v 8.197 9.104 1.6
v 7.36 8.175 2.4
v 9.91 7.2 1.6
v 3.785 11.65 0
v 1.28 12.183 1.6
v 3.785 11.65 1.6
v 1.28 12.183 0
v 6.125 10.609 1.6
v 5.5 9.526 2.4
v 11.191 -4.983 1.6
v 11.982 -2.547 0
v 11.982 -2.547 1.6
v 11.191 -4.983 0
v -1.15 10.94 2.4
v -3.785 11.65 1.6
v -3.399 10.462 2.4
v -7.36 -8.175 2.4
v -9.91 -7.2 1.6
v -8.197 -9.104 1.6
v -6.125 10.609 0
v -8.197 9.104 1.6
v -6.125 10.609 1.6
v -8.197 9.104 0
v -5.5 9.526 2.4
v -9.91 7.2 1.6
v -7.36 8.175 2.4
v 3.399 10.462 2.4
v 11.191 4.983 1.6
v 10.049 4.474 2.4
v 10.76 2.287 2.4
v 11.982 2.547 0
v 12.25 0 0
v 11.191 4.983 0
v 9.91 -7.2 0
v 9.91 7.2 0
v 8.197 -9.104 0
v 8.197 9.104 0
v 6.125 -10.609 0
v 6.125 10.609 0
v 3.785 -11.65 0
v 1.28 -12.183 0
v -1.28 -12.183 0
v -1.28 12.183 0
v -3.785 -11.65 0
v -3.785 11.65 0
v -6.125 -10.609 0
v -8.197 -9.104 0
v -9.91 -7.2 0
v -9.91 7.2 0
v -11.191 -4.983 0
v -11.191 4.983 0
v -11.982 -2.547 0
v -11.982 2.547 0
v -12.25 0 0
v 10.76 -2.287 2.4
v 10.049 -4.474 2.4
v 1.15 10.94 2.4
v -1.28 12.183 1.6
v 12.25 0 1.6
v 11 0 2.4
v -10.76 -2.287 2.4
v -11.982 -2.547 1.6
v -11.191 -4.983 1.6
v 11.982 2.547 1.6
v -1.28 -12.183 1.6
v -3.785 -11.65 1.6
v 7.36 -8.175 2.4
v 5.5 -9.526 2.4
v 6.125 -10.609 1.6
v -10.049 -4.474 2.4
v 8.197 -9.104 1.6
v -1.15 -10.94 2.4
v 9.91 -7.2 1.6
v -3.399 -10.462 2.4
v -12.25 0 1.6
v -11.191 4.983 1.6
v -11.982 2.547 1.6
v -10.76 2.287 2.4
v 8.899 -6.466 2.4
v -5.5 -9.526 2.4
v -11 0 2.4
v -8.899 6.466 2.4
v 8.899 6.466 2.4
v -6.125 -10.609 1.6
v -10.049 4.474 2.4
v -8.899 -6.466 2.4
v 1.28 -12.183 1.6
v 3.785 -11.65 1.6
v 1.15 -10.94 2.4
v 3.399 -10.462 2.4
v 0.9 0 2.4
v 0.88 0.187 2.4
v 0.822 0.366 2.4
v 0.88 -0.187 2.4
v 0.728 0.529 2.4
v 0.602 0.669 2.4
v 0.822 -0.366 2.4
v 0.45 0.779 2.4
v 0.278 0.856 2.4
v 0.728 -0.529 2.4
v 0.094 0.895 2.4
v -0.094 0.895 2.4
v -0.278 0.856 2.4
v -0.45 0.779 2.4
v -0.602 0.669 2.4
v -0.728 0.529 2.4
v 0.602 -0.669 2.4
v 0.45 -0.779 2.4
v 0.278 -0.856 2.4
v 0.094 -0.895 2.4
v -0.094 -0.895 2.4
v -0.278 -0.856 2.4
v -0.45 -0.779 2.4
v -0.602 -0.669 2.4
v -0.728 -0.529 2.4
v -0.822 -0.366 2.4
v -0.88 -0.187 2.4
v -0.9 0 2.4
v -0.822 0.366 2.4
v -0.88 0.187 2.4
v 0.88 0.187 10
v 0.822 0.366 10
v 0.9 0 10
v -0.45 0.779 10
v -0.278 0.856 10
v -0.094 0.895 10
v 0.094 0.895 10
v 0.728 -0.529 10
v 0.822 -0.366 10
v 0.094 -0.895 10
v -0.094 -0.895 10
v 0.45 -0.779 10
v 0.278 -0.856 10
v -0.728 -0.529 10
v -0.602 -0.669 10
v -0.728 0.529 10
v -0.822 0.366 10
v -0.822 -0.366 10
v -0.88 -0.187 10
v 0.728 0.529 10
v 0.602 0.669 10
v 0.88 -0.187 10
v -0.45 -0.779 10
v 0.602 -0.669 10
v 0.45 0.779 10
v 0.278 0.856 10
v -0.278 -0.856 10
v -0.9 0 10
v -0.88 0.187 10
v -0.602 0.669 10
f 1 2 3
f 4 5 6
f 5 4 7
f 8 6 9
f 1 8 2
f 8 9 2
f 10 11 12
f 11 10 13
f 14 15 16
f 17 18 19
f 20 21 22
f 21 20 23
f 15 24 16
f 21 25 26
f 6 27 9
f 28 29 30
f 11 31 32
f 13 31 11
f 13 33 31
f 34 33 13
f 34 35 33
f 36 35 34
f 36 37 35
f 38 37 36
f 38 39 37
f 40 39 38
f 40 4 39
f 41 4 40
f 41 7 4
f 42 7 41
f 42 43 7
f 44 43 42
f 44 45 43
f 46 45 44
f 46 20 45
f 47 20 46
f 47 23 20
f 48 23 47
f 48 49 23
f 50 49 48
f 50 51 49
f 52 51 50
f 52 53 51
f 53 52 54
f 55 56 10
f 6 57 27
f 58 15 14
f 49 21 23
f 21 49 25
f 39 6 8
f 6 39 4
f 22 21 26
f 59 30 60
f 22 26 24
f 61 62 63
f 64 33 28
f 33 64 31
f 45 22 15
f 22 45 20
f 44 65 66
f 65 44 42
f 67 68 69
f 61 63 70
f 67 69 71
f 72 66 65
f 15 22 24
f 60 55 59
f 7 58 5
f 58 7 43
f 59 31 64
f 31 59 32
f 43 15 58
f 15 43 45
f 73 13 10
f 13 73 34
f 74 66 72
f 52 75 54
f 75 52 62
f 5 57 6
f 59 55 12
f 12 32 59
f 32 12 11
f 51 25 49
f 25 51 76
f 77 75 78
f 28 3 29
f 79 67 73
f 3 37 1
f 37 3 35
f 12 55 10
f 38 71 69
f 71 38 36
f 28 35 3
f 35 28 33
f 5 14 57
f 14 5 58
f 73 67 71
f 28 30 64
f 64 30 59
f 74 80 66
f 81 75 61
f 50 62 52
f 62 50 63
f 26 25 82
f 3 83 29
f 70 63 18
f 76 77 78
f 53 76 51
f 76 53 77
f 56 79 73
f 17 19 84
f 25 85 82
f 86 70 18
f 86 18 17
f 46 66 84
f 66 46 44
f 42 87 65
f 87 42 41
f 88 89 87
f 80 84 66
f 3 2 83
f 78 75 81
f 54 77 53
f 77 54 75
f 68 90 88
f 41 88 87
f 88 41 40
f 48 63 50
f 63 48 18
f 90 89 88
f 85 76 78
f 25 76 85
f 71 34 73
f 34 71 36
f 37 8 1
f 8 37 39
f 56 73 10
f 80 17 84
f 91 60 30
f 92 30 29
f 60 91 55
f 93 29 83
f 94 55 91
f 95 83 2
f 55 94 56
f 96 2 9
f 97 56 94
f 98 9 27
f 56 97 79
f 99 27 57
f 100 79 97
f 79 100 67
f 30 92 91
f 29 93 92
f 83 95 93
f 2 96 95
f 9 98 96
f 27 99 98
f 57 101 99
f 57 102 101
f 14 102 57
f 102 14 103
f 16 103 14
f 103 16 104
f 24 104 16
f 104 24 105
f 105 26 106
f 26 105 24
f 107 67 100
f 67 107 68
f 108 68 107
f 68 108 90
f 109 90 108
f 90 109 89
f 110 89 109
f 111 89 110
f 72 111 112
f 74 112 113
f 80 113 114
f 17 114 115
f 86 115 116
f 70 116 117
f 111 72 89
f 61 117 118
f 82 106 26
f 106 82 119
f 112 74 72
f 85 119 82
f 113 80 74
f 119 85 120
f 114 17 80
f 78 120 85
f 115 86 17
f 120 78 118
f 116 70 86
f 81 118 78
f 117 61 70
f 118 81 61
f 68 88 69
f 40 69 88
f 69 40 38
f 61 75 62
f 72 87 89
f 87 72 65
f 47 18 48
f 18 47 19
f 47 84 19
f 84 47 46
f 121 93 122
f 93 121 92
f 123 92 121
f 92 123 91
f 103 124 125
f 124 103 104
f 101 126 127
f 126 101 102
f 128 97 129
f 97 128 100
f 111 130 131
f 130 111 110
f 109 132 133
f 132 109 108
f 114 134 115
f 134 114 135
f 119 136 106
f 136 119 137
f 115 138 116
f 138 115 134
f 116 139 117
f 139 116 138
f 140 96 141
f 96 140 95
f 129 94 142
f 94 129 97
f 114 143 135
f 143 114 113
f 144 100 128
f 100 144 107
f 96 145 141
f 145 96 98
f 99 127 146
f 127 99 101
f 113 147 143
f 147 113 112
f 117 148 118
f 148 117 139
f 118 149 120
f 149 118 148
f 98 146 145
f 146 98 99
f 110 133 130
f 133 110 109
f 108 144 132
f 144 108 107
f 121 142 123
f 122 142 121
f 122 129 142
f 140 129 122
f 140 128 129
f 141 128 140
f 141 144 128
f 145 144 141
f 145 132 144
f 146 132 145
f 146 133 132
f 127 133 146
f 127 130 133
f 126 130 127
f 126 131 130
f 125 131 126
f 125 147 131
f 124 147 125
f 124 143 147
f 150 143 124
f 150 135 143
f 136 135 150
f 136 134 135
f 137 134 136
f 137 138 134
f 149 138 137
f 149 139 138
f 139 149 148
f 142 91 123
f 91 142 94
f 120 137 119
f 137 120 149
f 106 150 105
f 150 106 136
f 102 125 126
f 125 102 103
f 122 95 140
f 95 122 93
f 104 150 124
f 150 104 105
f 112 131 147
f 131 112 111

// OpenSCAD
$fn=30;

union() {
	hull() {
		linear_extrude(2.4)
			circle (d=22);

		linear_extrude(1.6)
			circle (d=24.5);
	}
	linear_extrude(10)
		circle(d=1.8);
	}
